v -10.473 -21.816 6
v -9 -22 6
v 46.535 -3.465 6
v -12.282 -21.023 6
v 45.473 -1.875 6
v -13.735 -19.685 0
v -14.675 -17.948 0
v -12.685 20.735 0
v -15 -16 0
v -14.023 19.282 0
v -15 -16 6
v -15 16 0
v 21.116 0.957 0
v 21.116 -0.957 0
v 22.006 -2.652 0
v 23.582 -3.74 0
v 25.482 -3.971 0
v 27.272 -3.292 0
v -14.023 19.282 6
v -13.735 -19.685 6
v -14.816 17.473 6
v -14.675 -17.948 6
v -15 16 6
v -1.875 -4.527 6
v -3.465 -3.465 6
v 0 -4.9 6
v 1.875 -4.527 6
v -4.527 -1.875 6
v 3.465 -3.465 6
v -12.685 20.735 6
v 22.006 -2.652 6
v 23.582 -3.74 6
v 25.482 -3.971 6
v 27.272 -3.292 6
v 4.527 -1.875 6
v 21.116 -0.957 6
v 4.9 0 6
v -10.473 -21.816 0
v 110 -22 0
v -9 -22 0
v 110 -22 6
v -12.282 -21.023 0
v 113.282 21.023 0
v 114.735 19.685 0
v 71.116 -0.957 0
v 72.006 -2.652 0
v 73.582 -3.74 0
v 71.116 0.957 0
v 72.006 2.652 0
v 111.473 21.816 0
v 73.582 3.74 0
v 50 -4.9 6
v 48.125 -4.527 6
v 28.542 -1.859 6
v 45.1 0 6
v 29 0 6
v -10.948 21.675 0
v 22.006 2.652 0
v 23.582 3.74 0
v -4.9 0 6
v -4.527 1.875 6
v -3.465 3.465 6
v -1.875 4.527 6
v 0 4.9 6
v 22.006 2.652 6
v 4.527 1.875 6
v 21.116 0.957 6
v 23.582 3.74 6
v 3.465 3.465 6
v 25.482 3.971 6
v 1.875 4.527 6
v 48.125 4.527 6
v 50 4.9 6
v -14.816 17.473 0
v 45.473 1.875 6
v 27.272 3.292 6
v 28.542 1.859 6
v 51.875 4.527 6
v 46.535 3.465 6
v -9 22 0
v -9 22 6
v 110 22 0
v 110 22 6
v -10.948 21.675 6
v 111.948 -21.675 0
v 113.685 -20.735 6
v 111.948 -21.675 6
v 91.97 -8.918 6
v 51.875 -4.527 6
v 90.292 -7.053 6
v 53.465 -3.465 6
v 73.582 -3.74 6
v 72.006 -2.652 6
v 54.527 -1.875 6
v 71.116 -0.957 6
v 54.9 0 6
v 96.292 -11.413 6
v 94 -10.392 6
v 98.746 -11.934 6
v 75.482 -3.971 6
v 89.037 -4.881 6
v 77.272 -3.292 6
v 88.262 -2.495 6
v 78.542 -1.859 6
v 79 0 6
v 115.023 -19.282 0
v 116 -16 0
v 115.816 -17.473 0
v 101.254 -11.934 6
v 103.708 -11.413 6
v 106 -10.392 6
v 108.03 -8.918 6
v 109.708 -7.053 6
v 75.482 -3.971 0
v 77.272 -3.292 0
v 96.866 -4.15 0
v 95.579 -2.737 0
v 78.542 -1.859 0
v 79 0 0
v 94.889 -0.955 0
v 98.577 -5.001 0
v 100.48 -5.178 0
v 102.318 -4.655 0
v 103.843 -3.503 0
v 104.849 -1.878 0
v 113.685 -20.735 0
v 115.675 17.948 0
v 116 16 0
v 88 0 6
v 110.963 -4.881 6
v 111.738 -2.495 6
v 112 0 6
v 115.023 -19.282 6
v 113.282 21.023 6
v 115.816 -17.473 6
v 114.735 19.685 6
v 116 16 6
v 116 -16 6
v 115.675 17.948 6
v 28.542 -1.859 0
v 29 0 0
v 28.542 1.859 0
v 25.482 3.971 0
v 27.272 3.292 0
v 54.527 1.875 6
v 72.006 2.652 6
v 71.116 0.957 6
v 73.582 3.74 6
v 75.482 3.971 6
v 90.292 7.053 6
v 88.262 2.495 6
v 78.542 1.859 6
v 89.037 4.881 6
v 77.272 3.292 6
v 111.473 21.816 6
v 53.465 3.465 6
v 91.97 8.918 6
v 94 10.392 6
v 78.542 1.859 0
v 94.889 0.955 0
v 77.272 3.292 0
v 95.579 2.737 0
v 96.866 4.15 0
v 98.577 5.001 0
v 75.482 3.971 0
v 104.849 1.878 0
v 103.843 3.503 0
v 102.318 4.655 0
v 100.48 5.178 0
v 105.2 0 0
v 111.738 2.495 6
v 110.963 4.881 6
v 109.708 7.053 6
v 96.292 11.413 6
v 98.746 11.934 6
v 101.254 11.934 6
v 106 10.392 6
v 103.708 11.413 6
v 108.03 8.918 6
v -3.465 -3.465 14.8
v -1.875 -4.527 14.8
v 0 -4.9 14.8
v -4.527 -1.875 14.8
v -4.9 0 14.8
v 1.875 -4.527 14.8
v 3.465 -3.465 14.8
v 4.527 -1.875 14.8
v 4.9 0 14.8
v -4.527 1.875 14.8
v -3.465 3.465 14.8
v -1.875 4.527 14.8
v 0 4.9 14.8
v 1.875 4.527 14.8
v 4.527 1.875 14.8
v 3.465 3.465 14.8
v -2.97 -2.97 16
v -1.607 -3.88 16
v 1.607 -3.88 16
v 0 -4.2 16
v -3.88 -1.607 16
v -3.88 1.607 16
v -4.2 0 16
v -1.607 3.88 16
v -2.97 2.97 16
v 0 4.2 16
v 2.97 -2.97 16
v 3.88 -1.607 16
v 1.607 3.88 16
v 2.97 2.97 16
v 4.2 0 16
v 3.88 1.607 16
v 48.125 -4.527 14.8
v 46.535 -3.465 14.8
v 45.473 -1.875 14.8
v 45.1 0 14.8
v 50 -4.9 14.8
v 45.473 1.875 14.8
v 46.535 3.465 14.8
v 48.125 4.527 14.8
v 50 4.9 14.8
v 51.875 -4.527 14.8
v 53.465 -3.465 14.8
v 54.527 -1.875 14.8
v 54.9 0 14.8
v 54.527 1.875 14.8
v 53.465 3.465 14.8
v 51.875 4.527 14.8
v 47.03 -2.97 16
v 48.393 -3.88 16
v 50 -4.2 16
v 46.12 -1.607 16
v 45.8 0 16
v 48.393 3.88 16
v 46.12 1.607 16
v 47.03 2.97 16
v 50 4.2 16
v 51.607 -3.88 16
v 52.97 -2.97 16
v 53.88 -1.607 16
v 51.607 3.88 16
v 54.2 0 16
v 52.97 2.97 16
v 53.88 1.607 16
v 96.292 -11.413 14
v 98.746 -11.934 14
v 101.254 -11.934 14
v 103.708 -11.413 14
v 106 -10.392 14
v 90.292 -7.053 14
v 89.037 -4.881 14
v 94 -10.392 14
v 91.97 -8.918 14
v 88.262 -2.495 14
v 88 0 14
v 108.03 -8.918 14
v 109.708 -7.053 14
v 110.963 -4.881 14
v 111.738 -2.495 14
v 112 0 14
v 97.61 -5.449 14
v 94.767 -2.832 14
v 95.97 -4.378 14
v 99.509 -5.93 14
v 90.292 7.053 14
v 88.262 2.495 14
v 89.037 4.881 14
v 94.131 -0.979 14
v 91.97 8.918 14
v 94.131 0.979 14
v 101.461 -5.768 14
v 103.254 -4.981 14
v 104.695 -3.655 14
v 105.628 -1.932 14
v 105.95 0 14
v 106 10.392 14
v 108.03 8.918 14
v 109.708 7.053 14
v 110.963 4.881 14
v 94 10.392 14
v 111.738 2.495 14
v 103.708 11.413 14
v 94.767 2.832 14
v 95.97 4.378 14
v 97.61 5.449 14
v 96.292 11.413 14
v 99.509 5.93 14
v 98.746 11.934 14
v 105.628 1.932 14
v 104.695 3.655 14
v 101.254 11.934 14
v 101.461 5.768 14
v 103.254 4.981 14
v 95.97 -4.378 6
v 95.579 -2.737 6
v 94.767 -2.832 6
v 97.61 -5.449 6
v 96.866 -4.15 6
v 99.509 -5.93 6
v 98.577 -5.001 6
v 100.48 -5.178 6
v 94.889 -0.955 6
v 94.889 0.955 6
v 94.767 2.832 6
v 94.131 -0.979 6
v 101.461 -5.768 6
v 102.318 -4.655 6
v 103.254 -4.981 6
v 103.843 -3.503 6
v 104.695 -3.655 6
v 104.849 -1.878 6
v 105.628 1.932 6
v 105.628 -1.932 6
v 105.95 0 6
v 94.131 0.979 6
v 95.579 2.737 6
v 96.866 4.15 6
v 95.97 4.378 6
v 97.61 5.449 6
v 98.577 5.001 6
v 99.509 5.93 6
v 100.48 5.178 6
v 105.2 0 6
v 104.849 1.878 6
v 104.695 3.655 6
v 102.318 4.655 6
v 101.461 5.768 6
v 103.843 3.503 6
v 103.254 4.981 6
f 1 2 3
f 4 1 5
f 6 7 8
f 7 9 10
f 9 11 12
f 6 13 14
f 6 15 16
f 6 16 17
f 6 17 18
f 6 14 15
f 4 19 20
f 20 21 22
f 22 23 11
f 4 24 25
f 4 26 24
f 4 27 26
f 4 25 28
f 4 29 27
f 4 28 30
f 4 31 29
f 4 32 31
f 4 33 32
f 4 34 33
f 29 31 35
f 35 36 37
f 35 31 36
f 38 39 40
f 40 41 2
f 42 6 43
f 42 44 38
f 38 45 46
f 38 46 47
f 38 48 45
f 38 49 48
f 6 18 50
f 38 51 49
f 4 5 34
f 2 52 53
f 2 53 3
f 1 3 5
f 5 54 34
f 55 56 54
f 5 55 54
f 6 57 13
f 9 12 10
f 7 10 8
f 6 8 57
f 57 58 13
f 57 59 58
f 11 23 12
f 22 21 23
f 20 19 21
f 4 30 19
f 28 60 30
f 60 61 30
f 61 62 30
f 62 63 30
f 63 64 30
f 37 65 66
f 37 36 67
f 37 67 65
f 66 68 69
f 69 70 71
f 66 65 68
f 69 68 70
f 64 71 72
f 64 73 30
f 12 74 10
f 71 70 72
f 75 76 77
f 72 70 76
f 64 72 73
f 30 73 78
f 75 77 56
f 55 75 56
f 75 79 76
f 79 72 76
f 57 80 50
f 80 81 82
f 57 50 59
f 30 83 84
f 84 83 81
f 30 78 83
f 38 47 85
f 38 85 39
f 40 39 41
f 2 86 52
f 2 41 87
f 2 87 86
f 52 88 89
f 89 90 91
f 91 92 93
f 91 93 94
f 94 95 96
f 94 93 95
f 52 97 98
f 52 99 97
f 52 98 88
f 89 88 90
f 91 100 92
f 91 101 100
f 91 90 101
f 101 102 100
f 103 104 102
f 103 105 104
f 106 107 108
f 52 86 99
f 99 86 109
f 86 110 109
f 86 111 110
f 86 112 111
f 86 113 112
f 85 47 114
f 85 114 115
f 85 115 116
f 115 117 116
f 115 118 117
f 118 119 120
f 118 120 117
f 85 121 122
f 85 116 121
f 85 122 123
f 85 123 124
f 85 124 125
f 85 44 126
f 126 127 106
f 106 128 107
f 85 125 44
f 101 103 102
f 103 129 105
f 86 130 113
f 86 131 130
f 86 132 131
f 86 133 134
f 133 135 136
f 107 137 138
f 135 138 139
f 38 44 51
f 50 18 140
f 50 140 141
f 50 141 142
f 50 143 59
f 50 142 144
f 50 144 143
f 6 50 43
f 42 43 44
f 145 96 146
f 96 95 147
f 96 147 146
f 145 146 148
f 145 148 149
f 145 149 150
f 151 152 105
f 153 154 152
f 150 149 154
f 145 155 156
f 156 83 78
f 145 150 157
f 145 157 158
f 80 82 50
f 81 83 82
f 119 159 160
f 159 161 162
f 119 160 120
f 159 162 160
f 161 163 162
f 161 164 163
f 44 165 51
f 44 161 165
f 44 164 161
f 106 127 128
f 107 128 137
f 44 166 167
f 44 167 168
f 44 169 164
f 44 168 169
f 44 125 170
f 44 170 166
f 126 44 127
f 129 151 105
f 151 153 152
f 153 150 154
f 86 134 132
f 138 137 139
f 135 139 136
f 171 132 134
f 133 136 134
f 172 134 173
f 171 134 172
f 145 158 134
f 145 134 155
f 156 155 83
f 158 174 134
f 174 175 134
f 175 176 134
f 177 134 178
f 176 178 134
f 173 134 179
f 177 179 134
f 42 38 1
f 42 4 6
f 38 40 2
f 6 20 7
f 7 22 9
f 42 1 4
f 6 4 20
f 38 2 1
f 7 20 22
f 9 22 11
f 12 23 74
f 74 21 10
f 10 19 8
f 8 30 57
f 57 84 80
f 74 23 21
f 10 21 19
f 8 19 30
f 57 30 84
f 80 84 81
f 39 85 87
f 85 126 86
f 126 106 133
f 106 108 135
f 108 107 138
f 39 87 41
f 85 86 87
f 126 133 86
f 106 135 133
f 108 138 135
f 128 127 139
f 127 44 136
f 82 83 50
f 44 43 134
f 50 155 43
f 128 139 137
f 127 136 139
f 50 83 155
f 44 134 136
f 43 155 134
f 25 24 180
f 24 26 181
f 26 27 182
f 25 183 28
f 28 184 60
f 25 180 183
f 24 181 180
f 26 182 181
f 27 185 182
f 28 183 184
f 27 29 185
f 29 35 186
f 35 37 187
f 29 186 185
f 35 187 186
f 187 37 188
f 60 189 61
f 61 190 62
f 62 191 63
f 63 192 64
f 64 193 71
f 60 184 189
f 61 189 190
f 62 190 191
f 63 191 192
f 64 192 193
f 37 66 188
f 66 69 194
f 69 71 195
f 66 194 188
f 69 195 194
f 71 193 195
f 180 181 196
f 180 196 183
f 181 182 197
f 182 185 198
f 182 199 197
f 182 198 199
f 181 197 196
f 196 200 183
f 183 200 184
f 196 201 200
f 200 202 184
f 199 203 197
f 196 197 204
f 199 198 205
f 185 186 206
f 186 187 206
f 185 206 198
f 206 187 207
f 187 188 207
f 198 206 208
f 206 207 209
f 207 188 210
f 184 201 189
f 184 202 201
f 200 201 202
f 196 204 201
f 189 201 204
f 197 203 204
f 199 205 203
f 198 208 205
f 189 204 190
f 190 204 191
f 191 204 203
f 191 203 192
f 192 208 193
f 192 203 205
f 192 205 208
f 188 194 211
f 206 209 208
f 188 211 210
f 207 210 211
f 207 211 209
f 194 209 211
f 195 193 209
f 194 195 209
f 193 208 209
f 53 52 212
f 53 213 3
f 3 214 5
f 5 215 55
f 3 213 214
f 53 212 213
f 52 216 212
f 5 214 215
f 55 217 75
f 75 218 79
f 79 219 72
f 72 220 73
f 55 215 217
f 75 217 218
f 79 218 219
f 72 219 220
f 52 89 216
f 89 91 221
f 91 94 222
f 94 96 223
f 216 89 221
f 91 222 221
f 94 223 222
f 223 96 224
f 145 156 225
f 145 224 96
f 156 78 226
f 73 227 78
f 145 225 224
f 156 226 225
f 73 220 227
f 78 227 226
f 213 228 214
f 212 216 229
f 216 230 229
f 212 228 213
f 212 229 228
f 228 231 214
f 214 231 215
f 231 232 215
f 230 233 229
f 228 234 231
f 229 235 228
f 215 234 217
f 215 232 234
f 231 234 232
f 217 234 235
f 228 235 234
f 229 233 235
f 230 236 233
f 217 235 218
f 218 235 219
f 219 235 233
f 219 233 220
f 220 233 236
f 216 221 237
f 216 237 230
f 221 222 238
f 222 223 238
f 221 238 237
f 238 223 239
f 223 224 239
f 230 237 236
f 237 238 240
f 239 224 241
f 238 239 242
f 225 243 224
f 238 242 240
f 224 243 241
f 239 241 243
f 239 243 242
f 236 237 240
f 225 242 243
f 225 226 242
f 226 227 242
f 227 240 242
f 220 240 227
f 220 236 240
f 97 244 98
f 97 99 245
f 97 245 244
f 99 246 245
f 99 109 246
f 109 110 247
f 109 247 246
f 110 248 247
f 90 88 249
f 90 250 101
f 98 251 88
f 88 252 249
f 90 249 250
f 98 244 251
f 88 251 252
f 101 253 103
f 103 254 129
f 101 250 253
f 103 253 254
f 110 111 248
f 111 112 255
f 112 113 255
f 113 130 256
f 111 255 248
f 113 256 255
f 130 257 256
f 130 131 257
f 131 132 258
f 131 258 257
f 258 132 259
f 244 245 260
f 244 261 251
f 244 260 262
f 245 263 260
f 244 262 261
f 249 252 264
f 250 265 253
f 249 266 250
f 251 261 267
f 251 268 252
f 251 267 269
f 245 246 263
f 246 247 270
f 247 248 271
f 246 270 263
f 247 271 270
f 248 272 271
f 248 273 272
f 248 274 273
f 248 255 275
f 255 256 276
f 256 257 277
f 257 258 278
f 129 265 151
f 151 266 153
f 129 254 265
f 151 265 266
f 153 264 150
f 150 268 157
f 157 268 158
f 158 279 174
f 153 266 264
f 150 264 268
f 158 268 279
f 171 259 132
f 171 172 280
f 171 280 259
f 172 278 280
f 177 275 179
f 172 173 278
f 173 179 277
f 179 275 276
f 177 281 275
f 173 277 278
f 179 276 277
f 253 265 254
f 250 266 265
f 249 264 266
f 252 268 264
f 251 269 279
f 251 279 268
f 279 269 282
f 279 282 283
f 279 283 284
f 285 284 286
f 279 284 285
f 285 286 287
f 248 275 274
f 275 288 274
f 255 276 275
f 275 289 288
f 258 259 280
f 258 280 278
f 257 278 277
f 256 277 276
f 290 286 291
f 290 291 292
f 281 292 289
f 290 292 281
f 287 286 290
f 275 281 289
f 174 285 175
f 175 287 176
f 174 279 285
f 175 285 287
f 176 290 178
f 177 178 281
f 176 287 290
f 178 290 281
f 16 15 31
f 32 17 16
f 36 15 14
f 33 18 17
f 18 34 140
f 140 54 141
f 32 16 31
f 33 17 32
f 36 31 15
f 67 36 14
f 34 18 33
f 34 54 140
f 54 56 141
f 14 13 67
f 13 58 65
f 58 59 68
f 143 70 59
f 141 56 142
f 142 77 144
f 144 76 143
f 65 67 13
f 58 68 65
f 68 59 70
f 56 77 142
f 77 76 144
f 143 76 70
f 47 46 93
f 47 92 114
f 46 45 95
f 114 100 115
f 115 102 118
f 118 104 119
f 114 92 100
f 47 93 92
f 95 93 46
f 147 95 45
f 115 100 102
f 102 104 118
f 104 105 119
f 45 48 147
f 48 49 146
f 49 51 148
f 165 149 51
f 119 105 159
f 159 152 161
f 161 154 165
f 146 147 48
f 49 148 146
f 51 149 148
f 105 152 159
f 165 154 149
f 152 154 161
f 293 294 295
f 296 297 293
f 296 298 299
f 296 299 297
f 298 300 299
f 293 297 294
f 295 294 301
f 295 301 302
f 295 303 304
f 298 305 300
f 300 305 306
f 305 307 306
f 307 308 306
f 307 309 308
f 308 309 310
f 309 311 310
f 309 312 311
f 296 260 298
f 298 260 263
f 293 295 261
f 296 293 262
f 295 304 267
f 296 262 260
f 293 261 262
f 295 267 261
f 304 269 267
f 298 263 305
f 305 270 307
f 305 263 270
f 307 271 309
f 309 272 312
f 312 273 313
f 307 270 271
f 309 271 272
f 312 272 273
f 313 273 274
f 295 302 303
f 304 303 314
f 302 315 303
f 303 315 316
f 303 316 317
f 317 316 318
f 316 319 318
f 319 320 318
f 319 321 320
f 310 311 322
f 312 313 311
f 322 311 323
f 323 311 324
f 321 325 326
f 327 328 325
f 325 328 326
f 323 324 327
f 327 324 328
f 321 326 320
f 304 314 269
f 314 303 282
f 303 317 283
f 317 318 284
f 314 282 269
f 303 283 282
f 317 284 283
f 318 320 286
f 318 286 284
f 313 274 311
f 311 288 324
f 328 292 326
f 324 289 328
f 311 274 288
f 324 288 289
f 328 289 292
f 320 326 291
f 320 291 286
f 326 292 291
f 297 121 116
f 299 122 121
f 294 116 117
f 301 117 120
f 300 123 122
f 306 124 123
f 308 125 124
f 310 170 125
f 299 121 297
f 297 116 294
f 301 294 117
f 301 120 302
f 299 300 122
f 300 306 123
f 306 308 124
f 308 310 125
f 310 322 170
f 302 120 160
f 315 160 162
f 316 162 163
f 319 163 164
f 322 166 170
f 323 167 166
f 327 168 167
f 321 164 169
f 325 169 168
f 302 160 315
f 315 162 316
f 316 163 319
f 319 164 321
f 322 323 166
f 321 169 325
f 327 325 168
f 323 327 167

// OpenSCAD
// file: frame.scad
// ============================================================================
//  RIBBED FRAME HELPER — replaces a solid plate with border + grid ribs.
//  Same stiffness where it matters (bosses clamped flat), ~half the plastic.
// ============================================================================

rib_w    = 10;   // [mm] grid rib width
border_w = 10;   // [mm] perimeter border width

// Plan-view rounded rectangle prism — trims vertical edges to radius r.
// Inset polygon + offset(r) keeps the flat edges on x0/x1/y0/y1.
module rounded_outline(x0, y0, x1, y1, h, r = corner_r) {
    translate([0, 0, -0.05])
        linear_extrude(h + 0.1)
            offset(r = r)
                polygon([[x0 + r, y0 + r],
                         [x1 - r, y0 + r],
                         [x1 - r, y1 - r],
                         [x0 + r, y1 - r]]);
}

// Rounded box helper for external edges. Keep radii small to preserve fits.
module rounded_box(size, r = edge_break) {
    // 2D rounded footprint extruded to preserve exact outer dimensions.
    translate([0,0,-size[2]/2]) linear_extrude(size[2])
        offset(r=r) square([size[0]-2*r,size[1]-2*r],center=true);
}

// x0,y0,x1,y1 = plate extent; xs/ys = station coordinates the ribs run through
module rib_plate(x0, y0, x1, y1, xs, ys) {
    intersection() {
        union() {
        // border ring
        translate([(x0+x1)/2, y0+border_w/2, base_t/2]) rounded_box([x1-x0,border_w,base_t]);
        translate([(x0+x1)/2, y1-border_w/2, base_t/2]) rounded_box([x1-x0,border_w,base_t]);
        translate([x0+border_w/2, (y0+y1)/2, base_t/2]) rounded_box([border_w,y1-y0,base_t]);
        translate([x1-border_w/2, (y0+y1)/2, base_t/2]) rounded_box([border_w,y1-y0,base_t]);
        // ribs through each station row/column
        for (y = ys)
            translate([(x0+x1)/2, y, base_t/2])
                rounded_box([x1-x0, rib_w, base_t]);
        for (x = xs)
            translate([x, (y0+y1)/2, base_t/2])
                rounded_box([rib_w, y1-y0, base_t]);
        }
        rounded_outline(x0, y0, x1, y1, base_t);
    }
}

module pin_post(x, y) {
    translate([x, y, base_t - pin_embed]) {
        cylinder(d = pin_d, h = pin_embed + pin_len - chamfer_h);
        translate([0, 0, pin_embed + pin_len - chamfer_h])
            cylinder(d1 = pin_d, d2 = pin_d - 2 * chamfer_d, h = chamfer_h);
    }
}

module guide_boss(x, y) {
    translate([x, y, base_t])
        cylinder(d = boss_od, h = boss_h);
}

module guide_bores(x, y) {
    translate([x, y, base_t + boss_h - bush_seat_h])
        cylinder(d = bush_hole_d, h = bush_seat_h + 0.02);
    translate([x, y, -0.01])
        cylinder(d = bit_clear_d, h = base_t + boss_h + 0.02);
}
// file: params.scad
// ============================================================================
//  SHARED PARAMETERS — pegboard jig print set
//  10mm holes on a 50mm grid, 18mm plywood, first hole 25mm from each edge.
//  Include this file in every part so dimensions stay in sync.
// ============================================================================

pitch        = 50;    // [mm] grid spacing
hole_d       = 10;    // [mm] drilled hole / bit size (reference)
edge_offset  = 25;    // [mm] first hole centre from each edge
panel_t      = 18;    // [mm] plywood thickness (fence reach below z=0)

// Locating pins — drop into drilled holes. All pin parts print PINS-UP.
pin_d      = 9.8;     // snug in a 10mm hole (9.9 tighter, 9.5 looser)
pin_len    = 10;      // engagement depth
pin_embed  = 3;       // root embedded in the base
chamfer_h  = 1.2;
chamfer_d  = 0.7;

// Drill guides — 12mm OD / 10mm ID metal bush press fit
bush_hole_d  = 11.9;  // press-fit seat (11.7 tighter, 12.1 slip+glue)
bit_clear_d  = 10.4;  // 0.2mm/side clearance
bush_seat_h  = 8;
boss_od      = 24;
boss_h       = 8;

// Base plates
base_t       = 6;
margin       = boss_od / 2 + 6;   // plate margin around stations

// Fence joint — must match between plate notches and fence tabs
notch_d      = 8.4;
notch_w      = 12;
tab_w        = 10;
tab_t        = 4.4;
tab_z0       = 0.3;
tab_in       = 8;
tab_frac     = [0.18, 0.5, 0.82];
fence_t      = 4;
fence_top    = 14;
clamp_gap    = 25;
edge_margin  = 15;
clamp_hole_d = 6;

// Edge rounding — plan-view corner radius, helps high-speed printing
corner_r     = 6;      // [mm] on plates / rib frames
corner_r_s   = 3;      // [mm] on small parts (carriage, inserts)
edge_break   = 0.8;    // [mm] small chamfer on exposed vertical-part edges

// Fence→plate screws — horizontal M3 self-tappers through the fence
// wall into the plate edge band, in the solid gaps between notches.
// Shared by plate (pilot) and fence (through) so positions always match.
screw_d       = 3;      // [mm] M3
screw_clear   = 3.4;    // through-hole Ø in the fence wall
screw_pilot   = 2.4;    // pilot hole Ø into the plate edge
screw_depth   = 9.5;    // pilot depth — stays inside the 10mm border band
screw_z       = 3;      // hole centre height (mid plate thickness)
screw_min_gap = 10;     // smallest solid edge interval that takes a screw

// Solid intervals along a fence edge = reach minus the notch pockets.
// Returns centre positions for the screw holes (same on both parts).
function screw_stations(reach, tab_pos) =
    let(
        flat   = [for (c = tab_pos, e = [-notch_w / 2, notch_w / 2]) c + e],
        bounds = concat([0], flat, [reach]),
        pairs  = [for (i = [0 : 2 : len(bounds) - 2])
                      [bounds[i], bounds[i + 1]]]
    )
    [for (p = pairs) if (p[1] - p[0] >= screw_min_gap)
        (p[0] + p[1]) / 2];
// main file
// ============================================================================
//  LEAPFROG BAR — Proposal 1 indexing bar
//  Stations: pin x=0, pin x=50, guide x=100. One new hole per placement.
//  PRINT: as modelled — pins point UP (they point down in use). No supports.
// ============================================================================
include <params.scad>
include <frame.scad>

bar_w   = 44;
start_m = 15;
end_m   = boss_od / 2 + 4;
x0 = -start_m;
x1 = 2 * pitch + end_m;   // last station (guide) + margin -> ~131mm

module pin_post(x, y) {
    translate([x, y, base_t - pin_embed]) {
        cylinder(d = pin_d, h = pin_embed + pin_len - chamfer_h);
        translate([0, 0, pin_embed + pin_len - chamfer_h])
            cylinder(d1 = pin_d, d2 = pin_d - 2 * chamfer_d, h = chamfer_h);
    }
}

module leapfrog_bar() {
    difference() {
        union() {
            intersection() {
                translate([(x0+x1)/2, 0, base_t/2])
                    rounded_box([x1-x0, bar_w, base_t]);
                rounded_outline(x0, -bar_w / 2, x1, bar_w / 2, base_t);
            }
            pin_post(0, 0);
            pin_post(pitch, 0);
            translate([2 * pitch, 0, base_t])
                cylinder(d = boss_od, h = boss_h);
        }
        translate([2 * pitch, 0, base_t + boss_h - bush_seat_h])
            cylinder(d = bush_hole_d, h = bush_seat_h + 0.02);
        translate([2 * pitch, 0, -0.01])
            cylinder(d = bit_clear_d, h = base_t + boss_h + 0.02);
        // lightening / grip cutouts along the web — kept clear of the
        // pins (Ø9.8 at x=0/50) and the guide boss (Ø24 at x=100)
        for (cx = [pitch / 2, 2 * pitch - 25])
            translate([cx, 0, -0.01])
                cylinder(d = 8, h = base_t + 0.02);
    }
}

leapfrog_bar();
